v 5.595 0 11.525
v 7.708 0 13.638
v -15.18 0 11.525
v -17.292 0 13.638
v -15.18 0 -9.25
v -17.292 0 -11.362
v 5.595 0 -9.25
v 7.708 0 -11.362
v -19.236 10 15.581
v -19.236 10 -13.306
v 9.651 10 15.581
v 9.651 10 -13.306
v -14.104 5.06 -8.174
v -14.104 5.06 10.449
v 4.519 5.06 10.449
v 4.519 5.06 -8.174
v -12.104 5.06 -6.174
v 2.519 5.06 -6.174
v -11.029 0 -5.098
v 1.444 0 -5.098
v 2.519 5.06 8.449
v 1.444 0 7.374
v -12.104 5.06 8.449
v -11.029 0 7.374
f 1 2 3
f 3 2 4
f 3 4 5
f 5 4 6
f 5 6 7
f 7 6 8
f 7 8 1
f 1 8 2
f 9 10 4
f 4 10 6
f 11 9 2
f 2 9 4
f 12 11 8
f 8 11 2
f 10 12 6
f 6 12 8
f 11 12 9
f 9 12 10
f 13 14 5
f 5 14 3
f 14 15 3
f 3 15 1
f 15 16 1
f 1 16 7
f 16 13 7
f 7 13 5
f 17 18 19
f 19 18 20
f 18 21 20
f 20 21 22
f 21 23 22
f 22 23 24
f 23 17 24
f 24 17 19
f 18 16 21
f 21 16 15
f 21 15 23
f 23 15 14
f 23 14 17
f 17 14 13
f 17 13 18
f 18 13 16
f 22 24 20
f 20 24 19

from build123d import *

# Parameters (mm, degrees)
SKETCH1_W           = 25
SKETCH1_H           = 25
BOSS_EXTRUDE1_DEPTH = 10
BOSS_EXTRUDE1_DRAFT = -11
CAVITY1_OUTLINE_W   = 18.62330315
CAVITY1_OUTLINE_H   = 18.62330315
CAVITY1_OUTLINE_W_2 = 14.62330315
CAVITY1_OUTLINE_H_2 = 14.62330315
CAVITY1_DEPTH       = 5.060188455
CAVITY1_DRAFT       = 12


# Read off the part's stored shape, not the designer's step: Cavity1
with BuildPart() as part:
    # Sketch1 → Boss-Extrude1 (with draft: the straight prism first)
    with BuildSketch(Plane(origin=(0, 0, 0), x_dir=(1, 0, 0), z_dir=(0, 1, 0))):
        with Locations((-4.792449363, -1.137627393)):
            Rectangle(SKETCH1_W, SKETCH1_H)
    extrude(amount=BOSS_EXTRUDE1_DEPTH)
    # Boss-Extrude1: the draft: its side faces are tilted about the plane it starts from
    boss_extrude1_sides = [part.faces().sort_by_distance(p)[0] for p in [
        (-17.292449363, 5, 1.137627393),
        (-4.792449363, 5, 13.637627393),
        (7.707550637, 5, 1.137627393),
        (-4.792449363, 5, -11.362372607),
    ]]
    draft(boss_extrude1_sides, Plane(origin=(0, 0, 0), x_dir=(1, 0, 0), z_dir=(0, 1, 0)), BOSS_EXTRUDE1_DRAFT)


with BuildPart() as cavity1_tool:
    # Cavity1 outline → Cavity1 (with draft: the straight prism first)
    with BuildSketch(Plane(origin=(0, 5.060188455, 0), x_dir=(1, 0, 0), z_dir=(0, 1, 0))):
        with Locations((-4.792449363, -1.137627393)):
            Rectangle(CAVITY1_OUTLINE_W, CAVITY1_OUTLINE_H)
        with Locations((-4.792449363, -1.137627393)):
            Rectangle(CAVITY1_OUTLINE_W_2, CAVITY1_OUTLINE_H_2, mode=Mode.SUBTRACT)
    extrude(amount=-CAVITY1_DEPTH)
    # Cavity1: the draft: its side faces are tilted about the plane it starts from
    cavity1_sides = [cavity1_tool.faces().sort_by_distance(p)[0] for p in [
        (-14.104100938, 2.530094227, 1.137627393),
        (-4.792449363, 2.530094227, 10.449278968),
        (4.519202212, 2.530094227, 1.137627393),
        (-4.792449363, 2.530094227, -8.174024182),
        (2.519202212, 2.530094227, 1.137627393),
        (-4.792449363, 2.530094227, 8.449278968),
        (-12.104100938, 2.530094227, 1.137627393),
        (-4.792449363, 2.530094227, -6.174024182),
    ]]
    draft(cavity1_sides, Plane(origin=(0, 5.060188455, 0), x_dir=(1, 0, 0), z_dir=(0, 1, 0)), CAVITY1_DRAFT)


with BuildPart() as part_1:
    add(part.part)

    # Cavity1: cut by cavity1_tool
    add(cavity1_tool.part, mode=Mode.SUBTRACT)


solid = part_1.part
